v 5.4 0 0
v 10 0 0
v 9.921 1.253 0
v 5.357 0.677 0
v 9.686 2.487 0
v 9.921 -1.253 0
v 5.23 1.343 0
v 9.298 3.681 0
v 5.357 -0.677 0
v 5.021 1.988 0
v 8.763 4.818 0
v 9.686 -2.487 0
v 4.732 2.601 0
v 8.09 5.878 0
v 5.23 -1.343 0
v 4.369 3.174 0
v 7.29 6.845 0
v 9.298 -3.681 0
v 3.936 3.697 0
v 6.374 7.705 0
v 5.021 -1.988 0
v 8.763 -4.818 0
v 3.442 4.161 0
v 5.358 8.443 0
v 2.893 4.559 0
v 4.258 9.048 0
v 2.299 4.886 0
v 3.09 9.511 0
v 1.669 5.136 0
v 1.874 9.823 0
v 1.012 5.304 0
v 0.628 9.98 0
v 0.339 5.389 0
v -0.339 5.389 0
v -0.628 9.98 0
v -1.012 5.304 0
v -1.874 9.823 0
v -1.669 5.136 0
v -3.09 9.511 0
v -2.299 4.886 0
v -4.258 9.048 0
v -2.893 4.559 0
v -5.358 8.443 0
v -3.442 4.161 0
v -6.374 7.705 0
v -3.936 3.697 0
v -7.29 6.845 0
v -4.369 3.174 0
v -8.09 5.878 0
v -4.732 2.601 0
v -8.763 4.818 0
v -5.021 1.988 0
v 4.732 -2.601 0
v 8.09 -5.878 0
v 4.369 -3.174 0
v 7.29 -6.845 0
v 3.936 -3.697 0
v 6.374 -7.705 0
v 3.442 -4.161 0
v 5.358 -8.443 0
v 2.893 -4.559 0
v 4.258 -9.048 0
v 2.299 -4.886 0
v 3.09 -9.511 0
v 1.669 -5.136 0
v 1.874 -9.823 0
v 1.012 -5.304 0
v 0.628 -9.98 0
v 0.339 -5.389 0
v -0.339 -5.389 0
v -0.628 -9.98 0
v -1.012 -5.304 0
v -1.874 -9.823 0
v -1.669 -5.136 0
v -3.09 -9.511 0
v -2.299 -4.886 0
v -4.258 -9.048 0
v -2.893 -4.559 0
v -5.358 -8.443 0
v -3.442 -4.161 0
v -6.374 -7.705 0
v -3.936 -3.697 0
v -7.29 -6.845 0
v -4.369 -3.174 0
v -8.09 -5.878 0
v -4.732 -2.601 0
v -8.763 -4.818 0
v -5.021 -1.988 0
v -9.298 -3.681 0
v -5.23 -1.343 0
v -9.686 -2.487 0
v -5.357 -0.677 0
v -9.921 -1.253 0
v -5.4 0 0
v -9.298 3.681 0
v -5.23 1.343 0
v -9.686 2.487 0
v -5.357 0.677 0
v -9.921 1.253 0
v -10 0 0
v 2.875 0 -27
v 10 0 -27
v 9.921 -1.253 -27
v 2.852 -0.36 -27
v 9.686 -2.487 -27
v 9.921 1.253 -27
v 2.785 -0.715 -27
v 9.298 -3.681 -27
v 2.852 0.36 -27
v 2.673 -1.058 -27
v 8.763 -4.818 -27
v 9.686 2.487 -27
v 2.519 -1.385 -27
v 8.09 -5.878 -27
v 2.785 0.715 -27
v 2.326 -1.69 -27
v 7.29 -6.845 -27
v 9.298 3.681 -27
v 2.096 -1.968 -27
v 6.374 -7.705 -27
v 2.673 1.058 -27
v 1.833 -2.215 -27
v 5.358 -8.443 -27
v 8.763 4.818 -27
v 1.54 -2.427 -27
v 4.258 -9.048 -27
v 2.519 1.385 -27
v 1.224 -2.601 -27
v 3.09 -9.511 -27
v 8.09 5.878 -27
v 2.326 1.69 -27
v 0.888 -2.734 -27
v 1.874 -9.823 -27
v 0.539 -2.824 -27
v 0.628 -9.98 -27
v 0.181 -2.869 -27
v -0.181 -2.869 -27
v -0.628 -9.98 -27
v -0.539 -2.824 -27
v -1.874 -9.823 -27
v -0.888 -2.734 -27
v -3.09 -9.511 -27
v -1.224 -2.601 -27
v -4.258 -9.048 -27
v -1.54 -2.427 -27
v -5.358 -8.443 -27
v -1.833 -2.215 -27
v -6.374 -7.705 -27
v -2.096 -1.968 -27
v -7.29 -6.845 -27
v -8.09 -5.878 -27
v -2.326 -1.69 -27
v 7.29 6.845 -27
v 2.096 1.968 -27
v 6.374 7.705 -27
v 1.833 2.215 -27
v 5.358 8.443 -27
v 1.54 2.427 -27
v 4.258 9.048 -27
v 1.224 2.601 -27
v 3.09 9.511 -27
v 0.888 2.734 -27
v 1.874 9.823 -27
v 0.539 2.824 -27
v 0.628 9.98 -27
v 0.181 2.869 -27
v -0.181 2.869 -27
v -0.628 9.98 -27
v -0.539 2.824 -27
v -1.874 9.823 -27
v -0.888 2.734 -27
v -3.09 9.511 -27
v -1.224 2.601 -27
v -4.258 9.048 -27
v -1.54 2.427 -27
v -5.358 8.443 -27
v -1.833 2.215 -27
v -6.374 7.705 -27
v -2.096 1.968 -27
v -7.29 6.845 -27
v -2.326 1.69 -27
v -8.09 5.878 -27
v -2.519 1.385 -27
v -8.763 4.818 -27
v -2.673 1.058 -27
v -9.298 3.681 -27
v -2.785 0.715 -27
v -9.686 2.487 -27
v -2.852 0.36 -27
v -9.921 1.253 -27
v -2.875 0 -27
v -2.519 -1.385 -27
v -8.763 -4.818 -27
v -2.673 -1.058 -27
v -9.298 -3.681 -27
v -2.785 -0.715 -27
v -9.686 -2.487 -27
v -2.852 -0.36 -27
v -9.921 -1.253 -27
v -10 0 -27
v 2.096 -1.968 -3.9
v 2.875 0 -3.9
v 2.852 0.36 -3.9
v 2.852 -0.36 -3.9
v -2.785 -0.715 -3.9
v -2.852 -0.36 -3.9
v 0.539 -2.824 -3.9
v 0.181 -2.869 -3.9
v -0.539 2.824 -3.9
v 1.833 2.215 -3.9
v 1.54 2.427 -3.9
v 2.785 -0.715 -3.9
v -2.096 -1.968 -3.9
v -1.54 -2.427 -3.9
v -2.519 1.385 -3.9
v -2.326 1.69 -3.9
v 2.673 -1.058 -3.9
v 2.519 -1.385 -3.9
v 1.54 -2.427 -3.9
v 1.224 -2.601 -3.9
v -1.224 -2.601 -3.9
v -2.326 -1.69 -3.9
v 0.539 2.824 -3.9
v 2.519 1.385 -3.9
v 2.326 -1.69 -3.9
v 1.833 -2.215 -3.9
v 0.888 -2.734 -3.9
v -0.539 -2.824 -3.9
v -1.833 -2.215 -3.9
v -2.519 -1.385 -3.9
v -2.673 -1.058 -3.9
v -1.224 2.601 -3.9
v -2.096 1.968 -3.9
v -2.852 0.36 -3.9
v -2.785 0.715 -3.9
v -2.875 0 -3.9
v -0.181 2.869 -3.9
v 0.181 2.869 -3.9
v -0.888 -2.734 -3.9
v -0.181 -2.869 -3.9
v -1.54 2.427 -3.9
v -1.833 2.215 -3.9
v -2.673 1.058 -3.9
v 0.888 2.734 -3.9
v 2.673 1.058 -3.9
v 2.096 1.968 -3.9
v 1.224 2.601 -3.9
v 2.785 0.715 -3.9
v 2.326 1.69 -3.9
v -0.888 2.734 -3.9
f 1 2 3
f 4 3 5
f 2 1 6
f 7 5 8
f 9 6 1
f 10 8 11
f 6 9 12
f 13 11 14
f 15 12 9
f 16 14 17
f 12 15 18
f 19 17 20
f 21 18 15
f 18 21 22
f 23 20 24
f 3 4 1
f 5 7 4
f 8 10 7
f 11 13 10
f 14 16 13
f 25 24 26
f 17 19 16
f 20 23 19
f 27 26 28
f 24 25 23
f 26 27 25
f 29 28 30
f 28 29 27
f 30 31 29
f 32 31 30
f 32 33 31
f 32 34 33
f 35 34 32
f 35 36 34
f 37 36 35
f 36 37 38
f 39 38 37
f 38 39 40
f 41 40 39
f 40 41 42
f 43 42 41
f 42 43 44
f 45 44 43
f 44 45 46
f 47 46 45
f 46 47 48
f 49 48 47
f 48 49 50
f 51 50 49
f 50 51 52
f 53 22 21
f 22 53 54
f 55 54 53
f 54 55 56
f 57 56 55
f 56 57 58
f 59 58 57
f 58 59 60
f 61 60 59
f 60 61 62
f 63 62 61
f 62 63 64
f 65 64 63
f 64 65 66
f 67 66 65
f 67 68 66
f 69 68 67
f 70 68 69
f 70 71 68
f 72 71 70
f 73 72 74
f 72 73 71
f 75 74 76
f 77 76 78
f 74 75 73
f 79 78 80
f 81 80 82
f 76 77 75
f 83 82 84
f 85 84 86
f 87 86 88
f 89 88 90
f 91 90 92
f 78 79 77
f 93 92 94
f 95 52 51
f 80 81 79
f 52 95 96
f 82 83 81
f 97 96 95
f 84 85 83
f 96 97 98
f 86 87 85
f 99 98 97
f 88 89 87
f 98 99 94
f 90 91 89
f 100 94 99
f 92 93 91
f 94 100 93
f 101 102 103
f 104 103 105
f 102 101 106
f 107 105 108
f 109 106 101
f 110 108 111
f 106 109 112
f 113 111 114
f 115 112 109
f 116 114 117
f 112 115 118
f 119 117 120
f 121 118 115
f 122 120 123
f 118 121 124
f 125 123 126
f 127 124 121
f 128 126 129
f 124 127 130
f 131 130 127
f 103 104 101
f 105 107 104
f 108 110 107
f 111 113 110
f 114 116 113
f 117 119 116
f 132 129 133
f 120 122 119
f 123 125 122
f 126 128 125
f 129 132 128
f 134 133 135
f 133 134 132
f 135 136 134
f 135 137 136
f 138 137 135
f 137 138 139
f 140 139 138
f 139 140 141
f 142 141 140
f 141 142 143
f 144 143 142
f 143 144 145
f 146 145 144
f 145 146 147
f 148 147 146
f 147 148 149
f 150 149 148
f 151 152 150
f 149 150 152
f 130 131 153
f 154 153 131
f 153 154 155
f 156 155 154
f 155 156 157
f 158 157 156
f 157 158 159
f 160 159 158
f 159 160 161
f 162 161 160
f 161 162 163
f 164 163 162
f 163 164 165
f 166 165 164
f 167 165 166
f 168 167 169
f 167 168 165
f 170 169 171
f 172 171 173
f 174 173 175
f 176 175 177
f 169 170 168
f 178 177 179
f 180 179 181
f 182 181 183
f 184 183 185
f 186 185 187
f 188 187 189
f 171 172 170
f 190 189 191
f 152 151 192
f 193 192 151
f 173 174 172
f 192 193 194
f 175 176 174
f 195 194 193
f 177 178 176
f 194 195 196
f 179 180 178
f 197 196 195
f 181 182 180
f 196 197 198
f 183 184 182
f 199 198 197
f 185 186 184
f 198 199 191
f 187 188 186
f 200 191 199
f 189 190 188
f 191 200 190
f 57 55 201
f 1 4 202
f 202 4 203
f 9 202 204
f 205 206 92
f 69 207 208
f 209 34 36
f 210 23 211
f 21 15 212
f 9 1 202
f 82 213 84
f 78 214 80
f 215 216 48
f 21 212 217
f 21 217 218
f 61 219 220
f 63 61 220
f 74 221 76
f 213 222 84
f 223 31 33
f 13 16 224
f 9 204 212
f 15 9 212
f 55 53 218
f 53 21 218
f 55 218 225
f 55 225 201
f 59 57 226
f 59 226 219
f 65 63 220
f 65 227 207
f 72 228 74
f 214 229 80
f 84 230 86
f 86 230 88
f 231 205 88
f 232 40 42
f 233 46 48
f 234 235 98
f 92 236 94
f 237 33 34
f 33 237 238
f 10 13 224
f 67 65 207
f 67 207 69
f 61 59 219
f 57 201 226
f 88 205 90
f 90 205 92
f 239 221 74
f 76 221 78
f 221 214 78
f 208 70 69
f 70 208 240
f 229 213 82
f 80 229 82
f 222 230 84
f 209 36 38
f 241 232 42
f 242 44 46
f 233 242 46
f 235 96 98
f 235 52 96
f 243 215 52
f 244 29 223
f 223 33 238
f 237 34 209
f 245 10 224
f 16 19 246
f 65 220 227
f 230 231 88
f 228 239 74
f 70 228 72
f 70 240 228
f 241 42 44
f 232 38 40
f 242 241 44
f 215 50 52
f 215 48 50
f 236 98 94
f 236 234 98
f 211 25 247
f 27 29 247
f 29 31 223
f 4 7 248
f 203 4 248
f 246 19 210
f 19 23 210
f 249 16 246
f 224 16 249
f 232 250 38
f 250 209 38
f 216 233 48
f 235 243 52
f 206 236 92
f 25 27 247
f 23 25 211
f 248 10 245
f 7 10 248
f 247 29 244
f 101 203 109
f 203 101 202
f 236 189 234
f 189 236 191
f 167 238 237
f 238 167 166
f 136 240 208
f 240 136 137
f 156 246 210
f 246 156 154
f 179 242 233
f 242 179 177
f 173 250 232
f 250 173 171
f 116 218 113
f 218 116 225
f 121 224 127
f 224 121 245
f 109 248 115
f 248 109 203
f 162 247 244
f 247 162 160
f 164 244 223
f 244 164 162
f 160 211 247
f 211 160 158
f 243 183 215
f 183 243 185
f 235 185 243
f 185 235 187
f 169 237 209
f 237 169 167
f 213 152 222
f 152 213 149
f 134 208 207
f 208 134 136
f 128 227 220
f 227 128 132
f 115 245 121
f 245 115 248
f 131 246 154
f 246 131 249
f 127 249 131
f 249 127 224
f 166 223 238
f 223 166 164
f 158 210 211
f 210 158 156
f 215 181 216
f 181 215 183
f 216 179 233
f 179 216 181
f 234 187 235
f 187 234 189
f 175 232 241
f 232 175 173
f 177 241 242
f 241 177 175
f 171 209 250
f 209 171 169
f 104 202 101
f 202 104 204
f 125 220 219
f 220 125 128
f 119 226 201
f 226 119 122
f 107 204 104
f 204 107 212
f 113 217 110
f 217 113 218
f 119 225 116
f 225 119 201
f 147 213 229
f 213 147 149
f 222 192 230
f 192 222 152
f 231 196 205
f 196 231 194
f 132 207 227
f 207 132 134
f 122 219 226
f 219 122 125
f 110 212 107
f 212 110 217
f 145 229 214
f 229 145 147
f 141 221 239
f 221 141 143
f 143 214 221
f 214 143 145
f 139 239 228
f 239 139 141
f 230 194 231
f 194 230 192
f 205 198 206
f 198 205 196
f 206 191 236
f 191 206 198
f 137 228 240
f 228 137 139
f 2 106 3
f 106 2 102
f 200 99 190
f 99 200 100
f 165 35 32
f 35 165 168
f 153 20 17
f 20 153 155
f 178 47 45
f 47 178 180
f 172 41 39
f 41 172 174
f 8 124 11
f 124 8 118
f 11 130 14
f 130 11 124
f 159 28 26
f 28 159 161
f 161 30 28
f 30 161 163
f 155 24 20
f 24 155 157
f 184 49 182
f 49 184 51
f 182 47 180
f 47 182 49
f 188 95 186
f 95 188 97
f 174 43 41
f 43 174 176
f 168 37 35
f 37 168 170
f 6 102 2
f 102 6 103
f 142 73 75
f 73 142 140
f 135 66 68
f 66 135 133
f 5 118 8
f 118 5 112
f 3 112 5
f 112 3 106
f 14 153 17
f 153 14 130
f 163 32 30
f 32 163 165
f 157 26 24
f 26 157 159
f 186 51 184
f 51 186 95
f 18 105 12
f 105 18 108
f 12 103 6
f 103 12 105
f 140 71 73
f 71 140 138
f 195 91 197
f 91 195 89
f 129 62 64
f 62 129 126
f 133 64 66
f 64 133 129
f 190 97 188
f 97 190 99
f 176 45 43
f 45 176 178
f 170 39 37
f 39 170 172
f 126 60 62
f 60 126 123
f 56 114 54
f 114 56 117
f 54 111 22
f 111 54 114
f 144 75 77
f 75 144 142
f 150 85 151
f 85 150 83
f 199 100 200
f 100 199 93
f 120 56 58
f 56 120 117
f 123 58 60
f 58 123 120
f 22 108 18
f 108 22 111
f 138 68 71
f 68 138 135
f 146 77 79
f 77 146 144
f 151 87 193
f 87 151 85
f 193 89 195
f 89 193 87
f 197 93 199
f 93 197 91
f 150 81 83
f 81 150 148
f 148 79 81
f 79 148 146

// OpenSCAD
$fn = 50;


difference() {
	union() {
		translate(v = [0, 0, -27.0000000000]) {
			cylinder(h = 27, r = 10.0000000000);
		}
		cylinder(h = 0, r = 19.0000000000);
	}
	union() {
		translate(v = [0, 0, 0]) {
			rotate(a = [0, 0, 0]) {
				difference() {
					union() {
						#translate(v = [0, 0, -27.0000000000]) {
							cylinder(h = 27, r = 2.6000000000);
						}
						#translate(v = [0, 0, -3.9000000000]) {
							cylinder(h = 3.9000000000, r = 10.0000000000, r1 = 2.8750000000, r2 = 5.4000000000);
						}
						#translate(v = [0, 0, -27.0000000000]) {
							cylinder(h = 27, r = 2.8750000000);
						}
						#translate(v = [0, 0, -27.0000000000]) {
							cylinder(h = 27, r = 2.6000000000);
						}
					}
					union();
				}
			}
		}
	}
}
